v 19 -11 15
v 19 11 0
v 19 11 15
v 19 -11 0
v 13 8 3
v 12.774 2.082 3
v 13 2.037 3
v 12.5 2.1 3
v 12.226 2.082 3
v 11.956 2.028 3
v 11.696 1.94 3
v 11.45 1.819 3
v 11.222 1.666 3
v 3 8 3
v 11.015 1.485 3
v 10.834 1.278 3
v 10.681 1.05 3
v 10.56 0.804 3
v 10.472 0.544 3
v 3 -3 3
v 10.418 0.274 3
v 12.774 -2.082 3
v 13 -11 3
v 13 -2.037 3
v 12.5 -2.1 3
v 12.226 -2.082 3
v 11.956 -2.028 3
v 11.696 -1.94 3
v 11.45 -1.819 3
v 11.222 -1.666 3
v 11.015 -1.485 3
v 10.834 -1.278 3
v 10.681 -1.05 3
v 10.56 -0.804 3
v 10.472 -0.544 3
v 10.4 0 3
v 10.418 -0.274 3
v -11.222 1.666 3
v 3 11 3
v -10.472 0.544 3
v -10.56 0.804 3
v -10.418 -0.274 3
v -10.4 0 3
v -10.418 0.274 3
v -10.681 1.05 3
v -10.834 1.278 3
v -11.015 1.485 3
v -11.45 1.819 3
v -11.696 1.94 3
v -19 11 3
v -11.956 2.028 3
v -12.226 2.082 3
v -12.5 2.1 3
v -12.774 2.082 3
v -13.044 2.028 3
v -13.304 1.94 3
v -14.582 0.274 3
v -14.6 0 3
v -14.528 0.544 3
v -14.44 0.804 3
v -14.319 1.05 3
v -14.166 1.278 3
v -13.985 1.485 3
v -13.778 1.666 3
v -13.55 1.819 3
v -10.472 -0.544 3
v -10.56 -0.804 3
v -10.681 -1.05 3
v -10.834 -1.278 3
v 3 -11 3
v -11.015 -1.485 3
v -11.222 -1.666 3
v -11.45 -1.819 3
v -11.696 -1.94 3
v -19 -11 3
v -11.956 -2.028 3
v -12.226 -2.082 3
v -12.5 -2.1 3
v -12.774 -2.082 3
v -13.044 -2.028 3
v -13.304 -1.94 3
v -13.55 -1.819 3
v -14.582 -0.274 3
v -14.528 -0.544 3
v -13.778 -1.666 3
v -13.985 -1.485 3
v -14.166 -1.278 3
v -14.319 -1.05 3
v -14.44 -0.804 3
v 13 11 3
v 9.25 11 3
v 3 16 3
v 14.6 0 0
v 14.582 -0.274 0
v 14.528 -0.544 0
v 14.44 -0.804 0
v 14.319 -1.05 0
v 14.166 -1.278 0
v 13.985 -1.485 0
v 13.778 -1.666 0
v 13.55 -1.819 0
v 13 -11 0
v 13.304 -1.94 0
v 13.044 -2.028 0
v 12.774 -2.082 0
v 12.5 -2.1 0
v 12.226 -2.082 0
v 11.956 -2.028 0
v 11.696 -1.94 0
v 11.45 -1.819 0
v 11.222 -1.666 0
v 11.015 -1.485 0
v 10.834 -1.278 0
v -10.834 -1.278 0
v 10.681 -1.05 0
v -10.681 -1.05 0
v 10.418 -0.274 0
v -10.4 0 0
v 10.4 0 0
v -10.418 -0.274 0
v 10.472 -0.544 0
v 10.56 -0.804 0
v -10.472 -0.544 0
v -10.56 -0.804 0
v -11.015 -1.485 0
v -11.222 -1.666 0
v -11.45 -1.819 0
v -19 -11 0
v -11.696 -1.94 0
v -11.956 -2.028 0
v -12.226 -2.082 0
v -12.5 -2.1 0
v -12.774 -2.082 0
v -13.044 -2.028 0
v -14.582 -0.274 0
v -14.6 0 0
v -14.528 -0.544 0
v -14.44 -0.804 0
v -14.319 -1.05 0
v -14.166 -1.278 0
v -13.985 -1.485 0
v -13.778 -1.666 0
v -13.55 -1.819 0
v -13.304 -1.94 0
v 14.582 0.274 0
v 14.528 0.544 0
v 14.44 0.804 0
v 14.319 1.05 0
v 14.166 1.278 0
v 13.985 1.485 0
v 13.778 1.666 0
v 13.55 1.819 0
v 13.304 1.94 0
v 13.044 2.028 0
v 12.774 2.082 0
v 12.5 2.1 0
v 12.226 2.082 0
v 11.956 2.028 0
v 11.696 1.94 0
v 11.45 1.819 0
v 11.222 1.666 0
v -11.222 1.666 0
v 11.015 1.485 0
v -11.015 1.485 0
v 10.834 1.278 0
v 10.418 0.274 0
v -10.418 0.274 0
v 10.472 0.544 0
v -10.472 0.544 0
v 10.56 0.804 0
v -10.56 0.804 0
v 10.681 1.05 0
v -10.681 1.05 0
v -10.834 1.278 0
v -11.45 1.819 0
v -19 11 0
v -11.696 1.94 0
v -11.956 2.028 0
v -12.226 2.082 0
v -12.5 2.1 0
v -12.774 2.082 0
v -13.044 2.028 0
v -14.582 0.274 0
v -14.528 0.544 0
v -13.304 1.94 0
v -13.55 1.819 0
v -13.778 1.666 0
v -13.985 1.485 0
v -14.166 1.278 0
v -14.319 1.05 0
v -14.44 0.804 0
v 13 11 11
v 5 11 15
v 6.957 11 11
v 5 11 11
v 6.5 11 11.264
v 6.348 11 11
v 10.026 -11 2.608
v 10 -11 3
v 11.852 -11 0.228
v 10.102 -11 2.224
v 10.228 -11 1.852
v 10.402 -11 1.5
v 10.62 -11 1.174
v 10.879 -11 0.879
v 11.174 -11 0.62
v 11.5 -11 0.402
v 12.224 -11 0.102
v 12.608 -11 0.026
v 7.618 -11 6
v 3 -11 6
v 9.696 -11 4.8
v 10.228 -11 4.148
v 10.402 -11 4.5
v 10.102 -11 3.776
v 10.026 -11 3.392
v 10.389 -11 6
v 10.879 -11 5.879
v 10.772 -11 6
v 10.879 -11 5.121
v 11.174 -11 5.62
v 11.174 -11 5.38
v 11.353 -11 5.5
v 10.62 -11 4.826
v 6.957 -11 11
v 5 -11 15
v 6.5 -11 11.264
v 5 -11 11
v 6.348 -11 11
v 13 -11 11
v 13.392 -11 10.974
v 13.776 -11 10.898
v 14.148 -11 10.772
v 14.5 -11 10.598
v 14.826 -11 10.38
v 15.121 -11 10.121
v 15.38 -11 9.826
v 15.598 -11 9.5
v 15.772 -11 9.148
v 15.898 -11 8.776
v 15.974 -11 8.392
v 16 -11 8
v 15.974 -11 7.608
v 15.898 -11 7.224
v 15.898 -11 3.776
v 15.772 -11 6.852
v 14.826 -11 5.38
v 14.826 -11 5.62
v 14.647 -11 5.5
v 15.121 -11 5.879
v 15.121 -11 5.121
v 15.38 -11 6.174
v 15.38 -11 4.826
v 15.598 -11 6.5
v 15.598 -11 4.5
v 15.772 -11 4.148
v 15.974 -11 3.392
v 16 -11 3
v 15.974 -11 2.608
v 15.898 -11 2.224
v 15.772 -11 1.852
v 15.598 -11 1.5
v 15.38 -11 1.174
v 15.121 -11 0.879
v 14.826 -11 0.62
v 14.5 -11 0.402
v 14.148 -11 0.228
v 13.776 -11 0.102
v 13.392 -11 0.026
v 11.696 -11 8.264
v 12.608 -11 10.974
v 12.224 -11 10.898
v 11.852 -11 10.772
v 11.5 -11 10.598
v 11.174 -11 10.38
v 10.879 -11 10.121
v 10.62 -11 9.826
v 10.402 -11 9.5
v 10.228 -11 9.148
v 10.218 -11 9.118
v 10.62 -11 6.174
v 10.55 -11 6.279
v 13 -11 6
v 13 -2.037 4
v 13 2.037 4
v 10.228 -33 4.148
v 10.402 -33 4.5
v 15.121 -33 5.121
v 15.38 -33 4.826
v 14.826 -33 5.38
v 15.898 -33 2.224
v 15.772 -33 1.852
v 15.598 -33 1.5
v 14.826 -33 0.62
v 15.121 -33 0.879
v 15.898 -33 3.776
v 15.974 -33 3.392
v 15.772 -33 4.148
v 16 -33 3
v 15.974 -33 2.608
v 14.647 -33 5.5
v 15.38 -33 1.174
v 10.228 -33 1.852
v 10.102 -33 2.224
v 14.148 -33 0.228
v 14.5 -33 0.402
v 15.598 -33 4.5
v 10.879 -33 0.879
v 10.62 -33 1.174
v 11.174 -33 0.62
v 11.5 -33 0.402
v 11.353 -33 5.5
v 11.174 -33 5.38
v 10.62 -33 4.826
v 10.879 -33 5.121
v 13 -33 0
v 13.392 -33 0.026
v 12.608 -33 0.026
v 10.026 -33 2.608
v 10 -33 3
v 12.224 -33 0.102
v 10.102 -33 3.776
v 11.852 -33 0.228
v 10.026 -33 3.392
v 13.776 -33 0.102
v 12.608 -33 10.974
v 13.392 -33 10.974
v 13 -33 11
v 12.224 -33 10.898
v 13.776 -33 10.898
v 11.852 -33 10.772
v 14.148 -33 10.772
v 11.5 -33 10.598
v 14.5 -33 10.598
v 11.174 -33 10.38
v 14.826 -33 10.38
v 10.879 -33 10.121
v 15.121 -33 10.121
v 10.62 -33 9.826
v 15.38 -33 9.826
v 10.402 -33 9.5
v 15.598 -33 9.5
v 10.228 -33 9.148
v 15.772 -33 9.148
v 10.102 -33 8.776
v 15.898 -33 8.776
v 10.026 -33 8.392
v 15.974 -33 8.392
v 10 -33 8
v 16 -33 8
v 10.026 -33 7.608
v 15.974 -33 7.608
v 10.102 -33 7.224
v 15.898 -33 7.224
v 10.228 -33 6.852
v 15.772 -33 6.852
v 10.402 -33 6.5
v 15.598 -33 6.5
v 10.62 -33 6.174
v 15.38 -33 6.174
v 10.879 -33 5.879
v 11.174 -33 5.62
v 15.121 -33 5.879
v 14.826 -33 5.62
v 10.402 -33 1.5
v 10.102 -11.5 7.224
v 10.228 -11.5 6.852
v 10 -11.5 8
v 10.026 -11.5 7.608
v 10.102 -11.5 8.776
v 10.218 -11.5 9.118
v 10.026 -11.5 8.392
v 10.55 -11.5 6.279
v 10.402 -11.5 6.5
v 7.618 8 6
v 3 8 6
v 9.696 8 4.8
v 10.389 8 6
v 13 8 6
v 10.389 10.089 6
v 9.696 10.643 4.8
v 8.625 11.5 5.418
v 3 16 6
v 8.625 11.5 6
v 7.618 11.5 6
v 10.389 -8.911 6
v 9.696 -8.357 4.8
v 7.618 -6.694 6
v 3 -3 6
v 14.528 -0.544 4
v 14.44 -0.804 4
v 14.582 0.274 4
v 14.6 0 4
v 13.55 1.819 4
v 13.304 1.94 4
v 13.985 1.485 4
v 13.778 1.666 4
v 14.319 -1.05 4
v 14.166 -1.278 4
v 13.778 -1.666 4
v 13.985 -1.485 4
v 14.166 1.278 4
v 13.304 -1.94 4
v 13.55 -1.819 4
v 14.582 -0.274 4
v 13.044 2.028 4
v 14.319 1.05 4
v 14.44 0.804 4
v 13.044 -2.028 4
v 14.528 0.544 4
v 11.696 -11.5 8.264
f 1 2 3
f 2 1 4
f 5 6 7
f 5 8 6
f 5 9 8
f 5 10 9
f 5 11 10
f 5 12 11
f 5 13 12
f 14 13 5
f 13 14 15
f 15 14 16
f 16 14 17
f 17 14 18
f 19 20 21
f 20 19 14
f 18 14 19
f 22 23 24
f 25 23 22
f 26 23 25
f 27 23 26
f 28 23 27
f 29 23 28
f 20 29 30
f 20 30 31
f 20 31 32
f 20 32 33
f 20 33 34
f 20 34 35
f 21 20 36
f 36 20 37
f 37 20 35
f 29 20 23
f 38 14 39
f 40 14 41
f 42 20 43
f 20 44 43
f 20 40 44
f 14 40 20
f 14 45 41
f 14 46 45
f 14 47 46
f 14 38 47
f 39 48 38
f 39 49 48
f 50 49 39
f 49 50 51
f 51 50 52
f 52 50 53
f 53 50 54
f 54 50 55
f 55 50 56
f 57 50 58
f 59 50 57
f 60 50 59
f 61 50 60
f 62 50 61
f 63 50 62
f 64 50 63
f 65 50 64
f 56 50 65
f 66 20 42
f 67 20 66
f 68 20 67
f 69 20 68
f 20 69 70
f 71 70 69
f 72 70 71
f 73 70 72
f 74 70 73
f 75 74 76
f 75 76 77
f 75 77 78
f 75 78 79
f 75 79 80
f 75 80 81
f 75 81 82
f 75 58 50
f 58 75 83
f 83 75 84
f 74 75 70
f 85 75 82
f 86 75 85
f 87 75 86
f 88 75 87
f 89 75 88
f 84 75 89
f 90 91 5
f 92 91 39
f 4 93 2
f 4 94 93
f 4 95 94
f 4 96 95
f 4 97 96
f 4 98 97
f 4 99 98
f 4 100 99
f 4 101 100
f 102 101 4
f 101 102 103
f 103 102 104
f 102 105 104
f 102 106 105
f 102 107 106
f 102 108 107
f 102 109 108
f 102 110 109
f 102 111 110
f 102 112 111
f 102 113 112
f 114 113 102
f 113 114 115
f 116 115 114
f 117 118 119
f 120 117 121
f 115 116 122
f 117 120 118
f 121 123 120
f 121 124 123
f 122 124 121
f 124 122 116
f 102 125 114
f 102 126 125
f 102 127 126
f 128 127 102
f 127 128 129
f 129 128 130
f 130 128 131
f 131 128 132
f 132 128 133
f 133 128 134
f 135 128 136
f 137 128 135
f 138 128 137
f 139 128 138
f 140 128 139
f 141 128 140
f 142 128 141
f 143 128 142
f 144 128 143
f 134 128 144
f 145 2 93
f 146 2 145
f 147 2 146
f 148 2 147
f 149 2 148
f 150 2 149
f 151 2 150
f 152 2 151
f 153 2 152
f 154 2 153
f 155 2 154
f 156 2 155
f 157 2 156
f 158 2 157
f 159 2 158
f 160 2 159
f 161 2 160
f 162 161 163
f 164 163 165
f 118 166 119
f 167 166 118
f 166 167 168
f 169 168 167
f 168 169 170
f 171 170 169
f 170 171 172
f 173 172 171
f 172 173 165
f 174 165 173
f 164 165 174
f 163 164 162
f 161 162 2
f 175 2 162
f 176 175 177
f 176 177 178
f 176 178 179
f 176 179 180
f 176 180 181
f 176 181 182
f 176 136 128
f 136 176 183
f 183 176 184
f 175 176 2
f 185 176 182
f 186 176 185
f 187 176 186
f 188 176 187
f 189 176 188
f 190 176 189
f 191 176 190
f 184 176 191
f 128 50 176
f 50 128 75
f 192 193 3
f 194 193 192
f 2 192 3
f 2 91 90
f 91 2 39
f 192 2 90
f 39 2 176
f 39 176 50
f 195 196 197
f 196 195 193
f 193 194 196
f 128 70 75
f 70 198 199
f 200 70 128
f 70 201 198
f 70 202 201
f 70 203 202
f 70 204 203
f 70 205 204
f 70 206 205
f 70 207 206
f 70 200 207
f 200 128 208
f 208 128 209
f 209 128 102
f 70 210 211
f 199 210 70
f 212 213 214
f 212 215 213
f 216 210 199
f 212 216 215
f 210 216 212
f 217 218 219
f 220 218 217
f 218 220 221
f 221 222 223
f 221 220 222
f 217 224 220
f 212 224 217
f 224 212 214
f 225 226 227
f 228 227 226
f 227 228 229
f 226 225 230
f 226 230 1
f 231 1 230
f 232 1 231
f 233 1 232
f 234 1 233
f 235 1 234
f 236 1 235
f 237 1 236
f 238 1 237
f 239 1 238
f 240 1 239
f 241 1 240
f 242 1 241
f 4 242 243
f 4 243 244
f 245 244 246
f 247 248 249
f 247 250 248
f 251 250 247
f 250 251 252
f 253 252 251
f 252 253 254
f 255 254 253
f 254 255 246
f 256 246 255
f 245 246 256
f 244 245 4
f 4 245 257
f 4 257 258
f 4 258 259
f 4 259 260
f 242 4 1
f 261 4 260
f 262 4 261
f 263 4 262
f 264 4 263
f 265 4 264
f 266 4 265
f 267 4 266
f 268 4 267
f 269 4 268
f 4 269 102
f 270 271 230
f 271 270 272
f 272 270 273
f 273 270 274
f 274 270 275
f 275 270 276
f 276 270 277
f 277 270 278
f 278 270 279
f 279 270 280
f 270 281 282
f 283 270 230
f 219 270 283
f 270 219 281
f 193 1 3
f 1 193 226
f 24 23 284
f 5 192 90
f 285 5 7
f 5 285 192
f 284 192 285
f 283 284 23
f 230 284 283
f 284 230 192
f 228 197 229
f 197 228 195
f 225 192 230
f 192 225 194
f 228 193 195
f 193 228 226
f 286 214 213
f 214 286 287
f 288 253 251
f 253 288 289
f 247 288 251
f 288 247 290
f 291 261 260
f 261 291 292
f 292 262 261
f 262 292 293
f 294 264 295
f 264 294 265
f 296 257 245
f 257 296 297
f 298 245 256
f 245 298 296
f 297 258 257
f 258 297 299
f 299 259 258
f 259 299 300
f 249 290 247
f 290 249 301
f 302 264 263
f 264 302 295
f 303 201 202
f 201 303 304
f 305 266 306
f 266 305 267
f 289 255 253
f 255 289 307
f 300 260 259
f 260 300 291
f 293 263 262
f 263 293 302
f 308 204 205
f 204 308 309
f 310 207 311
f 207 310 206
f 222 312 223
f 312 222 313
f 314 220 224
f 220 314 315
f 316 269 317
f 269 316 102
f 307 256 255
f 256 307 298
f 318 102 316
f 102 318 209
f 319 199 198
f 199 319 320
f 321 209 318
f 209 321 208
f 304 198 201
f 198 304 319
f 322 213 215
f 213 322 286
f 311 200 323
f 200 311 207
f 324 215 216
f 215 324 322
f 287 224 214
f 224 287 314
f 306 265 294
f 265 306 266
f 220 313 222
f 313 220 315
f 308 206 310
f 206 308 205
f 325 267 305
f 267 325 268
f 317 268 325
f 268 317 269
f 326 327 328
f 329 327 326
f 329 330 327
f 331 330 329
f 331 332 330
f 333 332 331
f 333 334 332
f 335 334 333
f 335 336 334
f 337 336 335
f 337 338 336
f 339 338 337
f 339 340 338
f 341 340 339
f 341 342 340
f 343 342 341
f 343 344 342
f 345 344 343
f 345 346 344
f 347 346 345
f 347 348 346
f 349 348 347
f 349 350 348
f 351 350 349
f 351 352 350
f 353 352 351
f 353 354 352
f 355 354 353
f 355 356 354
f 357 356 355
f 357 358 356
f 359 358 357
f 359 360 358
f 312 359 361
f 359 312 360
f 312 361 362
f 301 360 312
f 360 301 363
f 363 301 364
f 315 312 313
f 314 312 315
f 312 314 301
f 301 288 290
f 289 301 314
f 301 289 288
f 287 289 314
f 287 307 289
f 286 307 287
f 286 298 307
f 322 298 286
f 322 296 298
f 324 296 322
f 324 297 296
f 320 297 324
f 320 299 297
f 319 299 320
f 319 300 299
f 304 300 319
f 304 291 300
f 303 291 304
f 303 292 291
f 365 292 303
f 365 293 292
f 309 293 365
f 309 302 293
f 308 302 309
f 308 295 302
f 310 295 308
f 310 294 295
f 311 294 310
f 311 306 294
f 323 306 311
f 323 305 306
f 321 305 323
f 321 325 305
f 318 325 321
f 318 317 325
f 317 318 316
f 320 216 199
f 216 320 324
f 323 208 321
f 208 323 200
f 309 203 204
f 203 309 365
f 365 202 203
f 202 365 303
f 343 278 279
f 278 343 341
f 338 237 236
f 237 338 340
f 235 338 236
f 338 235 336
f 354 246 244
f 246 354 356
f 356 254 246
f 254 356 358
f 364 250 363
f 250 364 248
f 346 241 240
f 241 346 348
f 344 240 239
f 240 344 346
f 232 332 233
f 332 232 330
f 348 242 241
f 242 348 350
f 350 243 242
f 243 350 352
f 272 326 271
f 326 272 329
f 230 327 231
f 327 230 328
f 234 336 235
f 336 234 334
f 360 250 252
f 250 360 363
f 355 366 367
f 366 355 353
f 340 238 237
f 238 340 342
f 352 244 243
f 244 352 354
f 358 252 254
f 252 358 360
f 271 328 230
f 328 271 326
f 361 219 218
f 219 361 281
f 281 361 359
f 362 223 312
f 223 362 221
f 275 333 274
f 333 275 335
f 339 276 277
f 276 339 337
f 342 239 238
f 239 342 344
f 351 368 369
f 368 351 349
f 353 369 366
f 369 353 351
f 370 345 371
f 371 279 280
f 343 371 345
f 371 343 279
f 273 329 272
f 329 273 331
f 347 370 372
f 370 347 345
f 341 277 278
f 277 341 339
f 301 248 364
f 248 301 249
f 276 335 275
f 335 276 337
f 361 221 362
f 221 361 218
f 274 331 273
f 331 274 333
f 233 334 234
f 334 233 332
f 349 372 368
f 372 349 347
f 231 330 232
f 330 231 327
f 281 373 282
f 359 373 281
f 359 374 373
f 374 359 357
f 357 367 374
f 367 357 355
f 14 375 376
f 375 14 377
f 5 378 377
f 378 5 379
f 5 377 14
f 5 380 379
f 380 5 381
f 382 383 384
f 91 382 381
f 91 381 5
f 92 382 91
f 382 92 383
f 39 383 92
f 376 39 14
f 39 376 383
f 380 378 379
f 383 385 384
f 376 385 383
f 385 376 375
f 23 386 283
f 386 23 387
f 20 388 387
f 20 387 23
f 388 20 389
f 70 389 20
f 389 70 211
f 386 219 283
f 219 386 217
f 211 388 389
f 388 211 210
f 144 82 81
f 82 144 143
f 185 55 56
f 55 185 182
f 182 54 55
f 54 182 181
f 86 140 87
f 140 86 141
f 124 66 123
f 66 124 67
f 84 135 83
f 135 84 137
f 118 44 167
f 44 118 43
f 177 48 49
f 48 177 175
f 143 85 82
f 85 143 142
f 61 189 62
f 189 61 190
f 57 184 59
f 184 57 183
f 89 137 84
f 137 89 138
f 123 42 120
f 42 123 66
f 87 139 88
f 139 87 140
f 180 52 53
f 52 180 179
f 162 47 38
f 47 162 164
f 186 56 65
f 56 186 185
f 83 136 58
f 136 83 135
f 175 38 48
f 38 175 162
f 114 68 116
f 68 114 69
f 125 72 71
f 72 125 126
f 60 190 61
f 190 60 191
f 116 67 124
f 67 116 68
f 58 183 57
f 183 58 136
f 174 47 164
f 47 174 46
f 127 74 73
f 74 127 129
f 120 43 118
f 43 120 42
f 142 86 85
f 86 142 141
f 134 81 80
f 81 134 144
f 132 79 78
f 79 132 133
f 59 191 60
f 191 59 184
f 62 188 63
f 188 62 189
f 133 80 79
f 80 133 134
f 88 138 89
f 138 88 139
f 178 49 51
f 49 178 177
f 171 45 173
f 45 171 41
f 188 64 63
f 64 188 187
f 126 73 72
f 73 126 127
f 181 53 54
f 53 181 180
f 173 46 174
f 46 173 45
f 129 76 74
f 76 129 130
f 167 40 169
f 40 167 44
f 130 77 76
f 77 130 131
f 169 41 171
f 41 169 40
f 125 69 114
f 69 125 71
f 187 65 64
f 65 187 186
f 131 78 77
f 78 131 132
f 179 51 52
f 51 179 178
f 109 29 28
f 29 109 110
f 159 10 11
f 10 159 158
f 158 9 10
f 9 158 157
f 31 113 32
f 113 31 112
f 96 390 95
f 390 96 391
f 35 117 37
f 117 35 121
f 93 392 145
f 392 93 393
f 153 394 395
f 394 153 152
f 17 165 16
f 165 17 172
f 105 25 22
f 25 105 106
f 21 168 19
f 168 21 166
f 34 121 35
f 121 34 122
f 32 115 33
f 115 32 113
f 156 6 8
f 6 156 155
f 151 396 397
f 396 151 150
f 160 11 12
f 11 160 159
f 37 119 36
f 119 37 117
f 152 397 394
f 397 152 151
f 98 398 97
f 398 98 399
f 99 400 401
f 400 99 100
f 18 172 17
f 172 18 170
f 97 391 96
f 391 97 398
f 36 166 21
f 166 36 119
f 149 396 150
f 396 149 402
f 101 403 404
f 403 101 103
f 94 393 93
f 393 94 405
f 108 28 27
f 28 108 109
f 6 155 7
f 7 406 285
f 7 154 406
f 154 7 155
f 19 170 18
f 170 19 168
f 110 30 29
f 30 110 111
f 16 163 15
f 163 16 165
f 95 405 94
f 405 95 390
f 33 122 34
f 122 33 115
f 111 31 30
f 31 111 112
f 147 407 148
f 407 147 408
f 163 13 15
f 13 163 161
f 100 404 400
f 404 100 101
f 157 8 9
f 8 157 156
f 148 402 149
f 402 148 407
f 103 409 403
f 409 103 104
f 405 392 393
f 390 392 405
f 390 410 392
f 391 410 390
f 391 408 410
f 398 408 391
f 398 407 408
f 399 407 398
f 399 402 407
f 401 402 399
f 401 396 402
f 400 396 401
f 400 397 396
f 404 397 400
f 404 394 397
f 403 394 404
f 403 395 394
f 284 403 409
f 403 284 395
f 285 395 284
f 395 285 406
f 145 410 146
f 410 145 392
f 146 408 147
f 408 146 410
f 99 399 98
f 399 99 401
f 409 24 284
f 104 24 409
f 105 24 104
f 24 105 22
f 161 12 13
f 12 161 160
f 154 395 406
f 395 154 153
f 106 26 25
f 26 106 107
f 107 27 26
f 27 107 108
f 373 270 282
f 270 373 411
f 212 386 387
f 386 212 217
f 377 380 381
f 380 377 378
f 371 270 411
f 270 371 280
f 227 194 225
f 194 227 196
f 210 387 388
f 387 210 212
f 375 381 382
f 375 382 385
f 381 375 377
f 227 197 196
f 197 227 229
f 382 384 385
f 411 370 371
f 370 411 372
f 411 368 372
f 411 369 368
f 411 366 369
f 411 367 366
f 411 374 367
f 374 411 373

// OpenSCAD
// Freezer door latch clip - PETG
// mm units, bottom of base at z=0, centered in x/y
base_L = 38;
base_W = 22;
base_T = 3;
hole_d = 4.2;
hole_spacing = 25;
post_t = 6; // thickened vs original to stop fatigue fracture
post_h = 12;
hook_tip_t = 4;
hook_overhang = 8; // engagement length past inner face of post
fillet_r = 3; // enlarged root fillet for cold toughness
gusset_len = 10;
gusset_h = 8;
gusset_t = 3;
$fn = 48;

module gusset_plate() {
    // triangle in XZ, extruded in Y
    linear_extrude(height = gusset_t)
        polygon(points = [[0,0],[gusset_len,0],[0,gusset_h]]);
}

difference() {
    union() {
        // base plate
        translate([-base_L/2, -base_W/2, 0])
            cube([base_L, base_W, base_T]);
        // vertical post at +X end, full width
        translate([base_L/2 - post_t, -base_W/2, base_T])
            cube([post_t, base_W, post_h]);
        // top hook arm extending back (-X) over base
        translate([base_L/2 - post_t - hook_overhang, -base_W/2, base_T + post_h - hook_tip_t])
            cube([post_t + hook_overhang, base_W, hook_tip_t]);
        // root fillet bar at inner base-post junction (along Y)
        translate([base_L/2 - post_t, -base_W/2, base_T])
            rotate([90, 0, 0])
                cylinder(r = fillet_r, h = base_W);
        // top fillet bar at post-hook junction
        translate([base_L/2 - post_t, -base_W/2, base_T + post_h - hook_tip_t - fillet_r])
            rotate([90, 0, 0])
                cylinder(r = fillet_r, h = base_W);
        // side gussets for stiffness (left/right)
        // inner face of post is at inner_x
        translate([base_L/2 - post_t - gusset_len, base_W/2 - gusset_t, base_T])
            gusset_plate();
        translate([base_L/2 - post_t - gusset_len, -base_W/2, base_T])
            gusset_plate();
    }
    // two M4 clearance holes through base
    for (sx = [-1, 1])
        translate([sx*hole_spacing/2, 0, -0.5])
            cylinder(d = hole_d, h = base_T + 1.5);
    // lead-in chamfer under hook tip for easy clip-on (30deg ramp)
    translate([base_L/2 - post_t - hook_overhang - 0.5, -base_W/2 - 0.5, base_T + post_h - hook_tip_t - 3.2])
        rotate([0, 30, 0])
            cube([6, base_W+1, 4]);
}
